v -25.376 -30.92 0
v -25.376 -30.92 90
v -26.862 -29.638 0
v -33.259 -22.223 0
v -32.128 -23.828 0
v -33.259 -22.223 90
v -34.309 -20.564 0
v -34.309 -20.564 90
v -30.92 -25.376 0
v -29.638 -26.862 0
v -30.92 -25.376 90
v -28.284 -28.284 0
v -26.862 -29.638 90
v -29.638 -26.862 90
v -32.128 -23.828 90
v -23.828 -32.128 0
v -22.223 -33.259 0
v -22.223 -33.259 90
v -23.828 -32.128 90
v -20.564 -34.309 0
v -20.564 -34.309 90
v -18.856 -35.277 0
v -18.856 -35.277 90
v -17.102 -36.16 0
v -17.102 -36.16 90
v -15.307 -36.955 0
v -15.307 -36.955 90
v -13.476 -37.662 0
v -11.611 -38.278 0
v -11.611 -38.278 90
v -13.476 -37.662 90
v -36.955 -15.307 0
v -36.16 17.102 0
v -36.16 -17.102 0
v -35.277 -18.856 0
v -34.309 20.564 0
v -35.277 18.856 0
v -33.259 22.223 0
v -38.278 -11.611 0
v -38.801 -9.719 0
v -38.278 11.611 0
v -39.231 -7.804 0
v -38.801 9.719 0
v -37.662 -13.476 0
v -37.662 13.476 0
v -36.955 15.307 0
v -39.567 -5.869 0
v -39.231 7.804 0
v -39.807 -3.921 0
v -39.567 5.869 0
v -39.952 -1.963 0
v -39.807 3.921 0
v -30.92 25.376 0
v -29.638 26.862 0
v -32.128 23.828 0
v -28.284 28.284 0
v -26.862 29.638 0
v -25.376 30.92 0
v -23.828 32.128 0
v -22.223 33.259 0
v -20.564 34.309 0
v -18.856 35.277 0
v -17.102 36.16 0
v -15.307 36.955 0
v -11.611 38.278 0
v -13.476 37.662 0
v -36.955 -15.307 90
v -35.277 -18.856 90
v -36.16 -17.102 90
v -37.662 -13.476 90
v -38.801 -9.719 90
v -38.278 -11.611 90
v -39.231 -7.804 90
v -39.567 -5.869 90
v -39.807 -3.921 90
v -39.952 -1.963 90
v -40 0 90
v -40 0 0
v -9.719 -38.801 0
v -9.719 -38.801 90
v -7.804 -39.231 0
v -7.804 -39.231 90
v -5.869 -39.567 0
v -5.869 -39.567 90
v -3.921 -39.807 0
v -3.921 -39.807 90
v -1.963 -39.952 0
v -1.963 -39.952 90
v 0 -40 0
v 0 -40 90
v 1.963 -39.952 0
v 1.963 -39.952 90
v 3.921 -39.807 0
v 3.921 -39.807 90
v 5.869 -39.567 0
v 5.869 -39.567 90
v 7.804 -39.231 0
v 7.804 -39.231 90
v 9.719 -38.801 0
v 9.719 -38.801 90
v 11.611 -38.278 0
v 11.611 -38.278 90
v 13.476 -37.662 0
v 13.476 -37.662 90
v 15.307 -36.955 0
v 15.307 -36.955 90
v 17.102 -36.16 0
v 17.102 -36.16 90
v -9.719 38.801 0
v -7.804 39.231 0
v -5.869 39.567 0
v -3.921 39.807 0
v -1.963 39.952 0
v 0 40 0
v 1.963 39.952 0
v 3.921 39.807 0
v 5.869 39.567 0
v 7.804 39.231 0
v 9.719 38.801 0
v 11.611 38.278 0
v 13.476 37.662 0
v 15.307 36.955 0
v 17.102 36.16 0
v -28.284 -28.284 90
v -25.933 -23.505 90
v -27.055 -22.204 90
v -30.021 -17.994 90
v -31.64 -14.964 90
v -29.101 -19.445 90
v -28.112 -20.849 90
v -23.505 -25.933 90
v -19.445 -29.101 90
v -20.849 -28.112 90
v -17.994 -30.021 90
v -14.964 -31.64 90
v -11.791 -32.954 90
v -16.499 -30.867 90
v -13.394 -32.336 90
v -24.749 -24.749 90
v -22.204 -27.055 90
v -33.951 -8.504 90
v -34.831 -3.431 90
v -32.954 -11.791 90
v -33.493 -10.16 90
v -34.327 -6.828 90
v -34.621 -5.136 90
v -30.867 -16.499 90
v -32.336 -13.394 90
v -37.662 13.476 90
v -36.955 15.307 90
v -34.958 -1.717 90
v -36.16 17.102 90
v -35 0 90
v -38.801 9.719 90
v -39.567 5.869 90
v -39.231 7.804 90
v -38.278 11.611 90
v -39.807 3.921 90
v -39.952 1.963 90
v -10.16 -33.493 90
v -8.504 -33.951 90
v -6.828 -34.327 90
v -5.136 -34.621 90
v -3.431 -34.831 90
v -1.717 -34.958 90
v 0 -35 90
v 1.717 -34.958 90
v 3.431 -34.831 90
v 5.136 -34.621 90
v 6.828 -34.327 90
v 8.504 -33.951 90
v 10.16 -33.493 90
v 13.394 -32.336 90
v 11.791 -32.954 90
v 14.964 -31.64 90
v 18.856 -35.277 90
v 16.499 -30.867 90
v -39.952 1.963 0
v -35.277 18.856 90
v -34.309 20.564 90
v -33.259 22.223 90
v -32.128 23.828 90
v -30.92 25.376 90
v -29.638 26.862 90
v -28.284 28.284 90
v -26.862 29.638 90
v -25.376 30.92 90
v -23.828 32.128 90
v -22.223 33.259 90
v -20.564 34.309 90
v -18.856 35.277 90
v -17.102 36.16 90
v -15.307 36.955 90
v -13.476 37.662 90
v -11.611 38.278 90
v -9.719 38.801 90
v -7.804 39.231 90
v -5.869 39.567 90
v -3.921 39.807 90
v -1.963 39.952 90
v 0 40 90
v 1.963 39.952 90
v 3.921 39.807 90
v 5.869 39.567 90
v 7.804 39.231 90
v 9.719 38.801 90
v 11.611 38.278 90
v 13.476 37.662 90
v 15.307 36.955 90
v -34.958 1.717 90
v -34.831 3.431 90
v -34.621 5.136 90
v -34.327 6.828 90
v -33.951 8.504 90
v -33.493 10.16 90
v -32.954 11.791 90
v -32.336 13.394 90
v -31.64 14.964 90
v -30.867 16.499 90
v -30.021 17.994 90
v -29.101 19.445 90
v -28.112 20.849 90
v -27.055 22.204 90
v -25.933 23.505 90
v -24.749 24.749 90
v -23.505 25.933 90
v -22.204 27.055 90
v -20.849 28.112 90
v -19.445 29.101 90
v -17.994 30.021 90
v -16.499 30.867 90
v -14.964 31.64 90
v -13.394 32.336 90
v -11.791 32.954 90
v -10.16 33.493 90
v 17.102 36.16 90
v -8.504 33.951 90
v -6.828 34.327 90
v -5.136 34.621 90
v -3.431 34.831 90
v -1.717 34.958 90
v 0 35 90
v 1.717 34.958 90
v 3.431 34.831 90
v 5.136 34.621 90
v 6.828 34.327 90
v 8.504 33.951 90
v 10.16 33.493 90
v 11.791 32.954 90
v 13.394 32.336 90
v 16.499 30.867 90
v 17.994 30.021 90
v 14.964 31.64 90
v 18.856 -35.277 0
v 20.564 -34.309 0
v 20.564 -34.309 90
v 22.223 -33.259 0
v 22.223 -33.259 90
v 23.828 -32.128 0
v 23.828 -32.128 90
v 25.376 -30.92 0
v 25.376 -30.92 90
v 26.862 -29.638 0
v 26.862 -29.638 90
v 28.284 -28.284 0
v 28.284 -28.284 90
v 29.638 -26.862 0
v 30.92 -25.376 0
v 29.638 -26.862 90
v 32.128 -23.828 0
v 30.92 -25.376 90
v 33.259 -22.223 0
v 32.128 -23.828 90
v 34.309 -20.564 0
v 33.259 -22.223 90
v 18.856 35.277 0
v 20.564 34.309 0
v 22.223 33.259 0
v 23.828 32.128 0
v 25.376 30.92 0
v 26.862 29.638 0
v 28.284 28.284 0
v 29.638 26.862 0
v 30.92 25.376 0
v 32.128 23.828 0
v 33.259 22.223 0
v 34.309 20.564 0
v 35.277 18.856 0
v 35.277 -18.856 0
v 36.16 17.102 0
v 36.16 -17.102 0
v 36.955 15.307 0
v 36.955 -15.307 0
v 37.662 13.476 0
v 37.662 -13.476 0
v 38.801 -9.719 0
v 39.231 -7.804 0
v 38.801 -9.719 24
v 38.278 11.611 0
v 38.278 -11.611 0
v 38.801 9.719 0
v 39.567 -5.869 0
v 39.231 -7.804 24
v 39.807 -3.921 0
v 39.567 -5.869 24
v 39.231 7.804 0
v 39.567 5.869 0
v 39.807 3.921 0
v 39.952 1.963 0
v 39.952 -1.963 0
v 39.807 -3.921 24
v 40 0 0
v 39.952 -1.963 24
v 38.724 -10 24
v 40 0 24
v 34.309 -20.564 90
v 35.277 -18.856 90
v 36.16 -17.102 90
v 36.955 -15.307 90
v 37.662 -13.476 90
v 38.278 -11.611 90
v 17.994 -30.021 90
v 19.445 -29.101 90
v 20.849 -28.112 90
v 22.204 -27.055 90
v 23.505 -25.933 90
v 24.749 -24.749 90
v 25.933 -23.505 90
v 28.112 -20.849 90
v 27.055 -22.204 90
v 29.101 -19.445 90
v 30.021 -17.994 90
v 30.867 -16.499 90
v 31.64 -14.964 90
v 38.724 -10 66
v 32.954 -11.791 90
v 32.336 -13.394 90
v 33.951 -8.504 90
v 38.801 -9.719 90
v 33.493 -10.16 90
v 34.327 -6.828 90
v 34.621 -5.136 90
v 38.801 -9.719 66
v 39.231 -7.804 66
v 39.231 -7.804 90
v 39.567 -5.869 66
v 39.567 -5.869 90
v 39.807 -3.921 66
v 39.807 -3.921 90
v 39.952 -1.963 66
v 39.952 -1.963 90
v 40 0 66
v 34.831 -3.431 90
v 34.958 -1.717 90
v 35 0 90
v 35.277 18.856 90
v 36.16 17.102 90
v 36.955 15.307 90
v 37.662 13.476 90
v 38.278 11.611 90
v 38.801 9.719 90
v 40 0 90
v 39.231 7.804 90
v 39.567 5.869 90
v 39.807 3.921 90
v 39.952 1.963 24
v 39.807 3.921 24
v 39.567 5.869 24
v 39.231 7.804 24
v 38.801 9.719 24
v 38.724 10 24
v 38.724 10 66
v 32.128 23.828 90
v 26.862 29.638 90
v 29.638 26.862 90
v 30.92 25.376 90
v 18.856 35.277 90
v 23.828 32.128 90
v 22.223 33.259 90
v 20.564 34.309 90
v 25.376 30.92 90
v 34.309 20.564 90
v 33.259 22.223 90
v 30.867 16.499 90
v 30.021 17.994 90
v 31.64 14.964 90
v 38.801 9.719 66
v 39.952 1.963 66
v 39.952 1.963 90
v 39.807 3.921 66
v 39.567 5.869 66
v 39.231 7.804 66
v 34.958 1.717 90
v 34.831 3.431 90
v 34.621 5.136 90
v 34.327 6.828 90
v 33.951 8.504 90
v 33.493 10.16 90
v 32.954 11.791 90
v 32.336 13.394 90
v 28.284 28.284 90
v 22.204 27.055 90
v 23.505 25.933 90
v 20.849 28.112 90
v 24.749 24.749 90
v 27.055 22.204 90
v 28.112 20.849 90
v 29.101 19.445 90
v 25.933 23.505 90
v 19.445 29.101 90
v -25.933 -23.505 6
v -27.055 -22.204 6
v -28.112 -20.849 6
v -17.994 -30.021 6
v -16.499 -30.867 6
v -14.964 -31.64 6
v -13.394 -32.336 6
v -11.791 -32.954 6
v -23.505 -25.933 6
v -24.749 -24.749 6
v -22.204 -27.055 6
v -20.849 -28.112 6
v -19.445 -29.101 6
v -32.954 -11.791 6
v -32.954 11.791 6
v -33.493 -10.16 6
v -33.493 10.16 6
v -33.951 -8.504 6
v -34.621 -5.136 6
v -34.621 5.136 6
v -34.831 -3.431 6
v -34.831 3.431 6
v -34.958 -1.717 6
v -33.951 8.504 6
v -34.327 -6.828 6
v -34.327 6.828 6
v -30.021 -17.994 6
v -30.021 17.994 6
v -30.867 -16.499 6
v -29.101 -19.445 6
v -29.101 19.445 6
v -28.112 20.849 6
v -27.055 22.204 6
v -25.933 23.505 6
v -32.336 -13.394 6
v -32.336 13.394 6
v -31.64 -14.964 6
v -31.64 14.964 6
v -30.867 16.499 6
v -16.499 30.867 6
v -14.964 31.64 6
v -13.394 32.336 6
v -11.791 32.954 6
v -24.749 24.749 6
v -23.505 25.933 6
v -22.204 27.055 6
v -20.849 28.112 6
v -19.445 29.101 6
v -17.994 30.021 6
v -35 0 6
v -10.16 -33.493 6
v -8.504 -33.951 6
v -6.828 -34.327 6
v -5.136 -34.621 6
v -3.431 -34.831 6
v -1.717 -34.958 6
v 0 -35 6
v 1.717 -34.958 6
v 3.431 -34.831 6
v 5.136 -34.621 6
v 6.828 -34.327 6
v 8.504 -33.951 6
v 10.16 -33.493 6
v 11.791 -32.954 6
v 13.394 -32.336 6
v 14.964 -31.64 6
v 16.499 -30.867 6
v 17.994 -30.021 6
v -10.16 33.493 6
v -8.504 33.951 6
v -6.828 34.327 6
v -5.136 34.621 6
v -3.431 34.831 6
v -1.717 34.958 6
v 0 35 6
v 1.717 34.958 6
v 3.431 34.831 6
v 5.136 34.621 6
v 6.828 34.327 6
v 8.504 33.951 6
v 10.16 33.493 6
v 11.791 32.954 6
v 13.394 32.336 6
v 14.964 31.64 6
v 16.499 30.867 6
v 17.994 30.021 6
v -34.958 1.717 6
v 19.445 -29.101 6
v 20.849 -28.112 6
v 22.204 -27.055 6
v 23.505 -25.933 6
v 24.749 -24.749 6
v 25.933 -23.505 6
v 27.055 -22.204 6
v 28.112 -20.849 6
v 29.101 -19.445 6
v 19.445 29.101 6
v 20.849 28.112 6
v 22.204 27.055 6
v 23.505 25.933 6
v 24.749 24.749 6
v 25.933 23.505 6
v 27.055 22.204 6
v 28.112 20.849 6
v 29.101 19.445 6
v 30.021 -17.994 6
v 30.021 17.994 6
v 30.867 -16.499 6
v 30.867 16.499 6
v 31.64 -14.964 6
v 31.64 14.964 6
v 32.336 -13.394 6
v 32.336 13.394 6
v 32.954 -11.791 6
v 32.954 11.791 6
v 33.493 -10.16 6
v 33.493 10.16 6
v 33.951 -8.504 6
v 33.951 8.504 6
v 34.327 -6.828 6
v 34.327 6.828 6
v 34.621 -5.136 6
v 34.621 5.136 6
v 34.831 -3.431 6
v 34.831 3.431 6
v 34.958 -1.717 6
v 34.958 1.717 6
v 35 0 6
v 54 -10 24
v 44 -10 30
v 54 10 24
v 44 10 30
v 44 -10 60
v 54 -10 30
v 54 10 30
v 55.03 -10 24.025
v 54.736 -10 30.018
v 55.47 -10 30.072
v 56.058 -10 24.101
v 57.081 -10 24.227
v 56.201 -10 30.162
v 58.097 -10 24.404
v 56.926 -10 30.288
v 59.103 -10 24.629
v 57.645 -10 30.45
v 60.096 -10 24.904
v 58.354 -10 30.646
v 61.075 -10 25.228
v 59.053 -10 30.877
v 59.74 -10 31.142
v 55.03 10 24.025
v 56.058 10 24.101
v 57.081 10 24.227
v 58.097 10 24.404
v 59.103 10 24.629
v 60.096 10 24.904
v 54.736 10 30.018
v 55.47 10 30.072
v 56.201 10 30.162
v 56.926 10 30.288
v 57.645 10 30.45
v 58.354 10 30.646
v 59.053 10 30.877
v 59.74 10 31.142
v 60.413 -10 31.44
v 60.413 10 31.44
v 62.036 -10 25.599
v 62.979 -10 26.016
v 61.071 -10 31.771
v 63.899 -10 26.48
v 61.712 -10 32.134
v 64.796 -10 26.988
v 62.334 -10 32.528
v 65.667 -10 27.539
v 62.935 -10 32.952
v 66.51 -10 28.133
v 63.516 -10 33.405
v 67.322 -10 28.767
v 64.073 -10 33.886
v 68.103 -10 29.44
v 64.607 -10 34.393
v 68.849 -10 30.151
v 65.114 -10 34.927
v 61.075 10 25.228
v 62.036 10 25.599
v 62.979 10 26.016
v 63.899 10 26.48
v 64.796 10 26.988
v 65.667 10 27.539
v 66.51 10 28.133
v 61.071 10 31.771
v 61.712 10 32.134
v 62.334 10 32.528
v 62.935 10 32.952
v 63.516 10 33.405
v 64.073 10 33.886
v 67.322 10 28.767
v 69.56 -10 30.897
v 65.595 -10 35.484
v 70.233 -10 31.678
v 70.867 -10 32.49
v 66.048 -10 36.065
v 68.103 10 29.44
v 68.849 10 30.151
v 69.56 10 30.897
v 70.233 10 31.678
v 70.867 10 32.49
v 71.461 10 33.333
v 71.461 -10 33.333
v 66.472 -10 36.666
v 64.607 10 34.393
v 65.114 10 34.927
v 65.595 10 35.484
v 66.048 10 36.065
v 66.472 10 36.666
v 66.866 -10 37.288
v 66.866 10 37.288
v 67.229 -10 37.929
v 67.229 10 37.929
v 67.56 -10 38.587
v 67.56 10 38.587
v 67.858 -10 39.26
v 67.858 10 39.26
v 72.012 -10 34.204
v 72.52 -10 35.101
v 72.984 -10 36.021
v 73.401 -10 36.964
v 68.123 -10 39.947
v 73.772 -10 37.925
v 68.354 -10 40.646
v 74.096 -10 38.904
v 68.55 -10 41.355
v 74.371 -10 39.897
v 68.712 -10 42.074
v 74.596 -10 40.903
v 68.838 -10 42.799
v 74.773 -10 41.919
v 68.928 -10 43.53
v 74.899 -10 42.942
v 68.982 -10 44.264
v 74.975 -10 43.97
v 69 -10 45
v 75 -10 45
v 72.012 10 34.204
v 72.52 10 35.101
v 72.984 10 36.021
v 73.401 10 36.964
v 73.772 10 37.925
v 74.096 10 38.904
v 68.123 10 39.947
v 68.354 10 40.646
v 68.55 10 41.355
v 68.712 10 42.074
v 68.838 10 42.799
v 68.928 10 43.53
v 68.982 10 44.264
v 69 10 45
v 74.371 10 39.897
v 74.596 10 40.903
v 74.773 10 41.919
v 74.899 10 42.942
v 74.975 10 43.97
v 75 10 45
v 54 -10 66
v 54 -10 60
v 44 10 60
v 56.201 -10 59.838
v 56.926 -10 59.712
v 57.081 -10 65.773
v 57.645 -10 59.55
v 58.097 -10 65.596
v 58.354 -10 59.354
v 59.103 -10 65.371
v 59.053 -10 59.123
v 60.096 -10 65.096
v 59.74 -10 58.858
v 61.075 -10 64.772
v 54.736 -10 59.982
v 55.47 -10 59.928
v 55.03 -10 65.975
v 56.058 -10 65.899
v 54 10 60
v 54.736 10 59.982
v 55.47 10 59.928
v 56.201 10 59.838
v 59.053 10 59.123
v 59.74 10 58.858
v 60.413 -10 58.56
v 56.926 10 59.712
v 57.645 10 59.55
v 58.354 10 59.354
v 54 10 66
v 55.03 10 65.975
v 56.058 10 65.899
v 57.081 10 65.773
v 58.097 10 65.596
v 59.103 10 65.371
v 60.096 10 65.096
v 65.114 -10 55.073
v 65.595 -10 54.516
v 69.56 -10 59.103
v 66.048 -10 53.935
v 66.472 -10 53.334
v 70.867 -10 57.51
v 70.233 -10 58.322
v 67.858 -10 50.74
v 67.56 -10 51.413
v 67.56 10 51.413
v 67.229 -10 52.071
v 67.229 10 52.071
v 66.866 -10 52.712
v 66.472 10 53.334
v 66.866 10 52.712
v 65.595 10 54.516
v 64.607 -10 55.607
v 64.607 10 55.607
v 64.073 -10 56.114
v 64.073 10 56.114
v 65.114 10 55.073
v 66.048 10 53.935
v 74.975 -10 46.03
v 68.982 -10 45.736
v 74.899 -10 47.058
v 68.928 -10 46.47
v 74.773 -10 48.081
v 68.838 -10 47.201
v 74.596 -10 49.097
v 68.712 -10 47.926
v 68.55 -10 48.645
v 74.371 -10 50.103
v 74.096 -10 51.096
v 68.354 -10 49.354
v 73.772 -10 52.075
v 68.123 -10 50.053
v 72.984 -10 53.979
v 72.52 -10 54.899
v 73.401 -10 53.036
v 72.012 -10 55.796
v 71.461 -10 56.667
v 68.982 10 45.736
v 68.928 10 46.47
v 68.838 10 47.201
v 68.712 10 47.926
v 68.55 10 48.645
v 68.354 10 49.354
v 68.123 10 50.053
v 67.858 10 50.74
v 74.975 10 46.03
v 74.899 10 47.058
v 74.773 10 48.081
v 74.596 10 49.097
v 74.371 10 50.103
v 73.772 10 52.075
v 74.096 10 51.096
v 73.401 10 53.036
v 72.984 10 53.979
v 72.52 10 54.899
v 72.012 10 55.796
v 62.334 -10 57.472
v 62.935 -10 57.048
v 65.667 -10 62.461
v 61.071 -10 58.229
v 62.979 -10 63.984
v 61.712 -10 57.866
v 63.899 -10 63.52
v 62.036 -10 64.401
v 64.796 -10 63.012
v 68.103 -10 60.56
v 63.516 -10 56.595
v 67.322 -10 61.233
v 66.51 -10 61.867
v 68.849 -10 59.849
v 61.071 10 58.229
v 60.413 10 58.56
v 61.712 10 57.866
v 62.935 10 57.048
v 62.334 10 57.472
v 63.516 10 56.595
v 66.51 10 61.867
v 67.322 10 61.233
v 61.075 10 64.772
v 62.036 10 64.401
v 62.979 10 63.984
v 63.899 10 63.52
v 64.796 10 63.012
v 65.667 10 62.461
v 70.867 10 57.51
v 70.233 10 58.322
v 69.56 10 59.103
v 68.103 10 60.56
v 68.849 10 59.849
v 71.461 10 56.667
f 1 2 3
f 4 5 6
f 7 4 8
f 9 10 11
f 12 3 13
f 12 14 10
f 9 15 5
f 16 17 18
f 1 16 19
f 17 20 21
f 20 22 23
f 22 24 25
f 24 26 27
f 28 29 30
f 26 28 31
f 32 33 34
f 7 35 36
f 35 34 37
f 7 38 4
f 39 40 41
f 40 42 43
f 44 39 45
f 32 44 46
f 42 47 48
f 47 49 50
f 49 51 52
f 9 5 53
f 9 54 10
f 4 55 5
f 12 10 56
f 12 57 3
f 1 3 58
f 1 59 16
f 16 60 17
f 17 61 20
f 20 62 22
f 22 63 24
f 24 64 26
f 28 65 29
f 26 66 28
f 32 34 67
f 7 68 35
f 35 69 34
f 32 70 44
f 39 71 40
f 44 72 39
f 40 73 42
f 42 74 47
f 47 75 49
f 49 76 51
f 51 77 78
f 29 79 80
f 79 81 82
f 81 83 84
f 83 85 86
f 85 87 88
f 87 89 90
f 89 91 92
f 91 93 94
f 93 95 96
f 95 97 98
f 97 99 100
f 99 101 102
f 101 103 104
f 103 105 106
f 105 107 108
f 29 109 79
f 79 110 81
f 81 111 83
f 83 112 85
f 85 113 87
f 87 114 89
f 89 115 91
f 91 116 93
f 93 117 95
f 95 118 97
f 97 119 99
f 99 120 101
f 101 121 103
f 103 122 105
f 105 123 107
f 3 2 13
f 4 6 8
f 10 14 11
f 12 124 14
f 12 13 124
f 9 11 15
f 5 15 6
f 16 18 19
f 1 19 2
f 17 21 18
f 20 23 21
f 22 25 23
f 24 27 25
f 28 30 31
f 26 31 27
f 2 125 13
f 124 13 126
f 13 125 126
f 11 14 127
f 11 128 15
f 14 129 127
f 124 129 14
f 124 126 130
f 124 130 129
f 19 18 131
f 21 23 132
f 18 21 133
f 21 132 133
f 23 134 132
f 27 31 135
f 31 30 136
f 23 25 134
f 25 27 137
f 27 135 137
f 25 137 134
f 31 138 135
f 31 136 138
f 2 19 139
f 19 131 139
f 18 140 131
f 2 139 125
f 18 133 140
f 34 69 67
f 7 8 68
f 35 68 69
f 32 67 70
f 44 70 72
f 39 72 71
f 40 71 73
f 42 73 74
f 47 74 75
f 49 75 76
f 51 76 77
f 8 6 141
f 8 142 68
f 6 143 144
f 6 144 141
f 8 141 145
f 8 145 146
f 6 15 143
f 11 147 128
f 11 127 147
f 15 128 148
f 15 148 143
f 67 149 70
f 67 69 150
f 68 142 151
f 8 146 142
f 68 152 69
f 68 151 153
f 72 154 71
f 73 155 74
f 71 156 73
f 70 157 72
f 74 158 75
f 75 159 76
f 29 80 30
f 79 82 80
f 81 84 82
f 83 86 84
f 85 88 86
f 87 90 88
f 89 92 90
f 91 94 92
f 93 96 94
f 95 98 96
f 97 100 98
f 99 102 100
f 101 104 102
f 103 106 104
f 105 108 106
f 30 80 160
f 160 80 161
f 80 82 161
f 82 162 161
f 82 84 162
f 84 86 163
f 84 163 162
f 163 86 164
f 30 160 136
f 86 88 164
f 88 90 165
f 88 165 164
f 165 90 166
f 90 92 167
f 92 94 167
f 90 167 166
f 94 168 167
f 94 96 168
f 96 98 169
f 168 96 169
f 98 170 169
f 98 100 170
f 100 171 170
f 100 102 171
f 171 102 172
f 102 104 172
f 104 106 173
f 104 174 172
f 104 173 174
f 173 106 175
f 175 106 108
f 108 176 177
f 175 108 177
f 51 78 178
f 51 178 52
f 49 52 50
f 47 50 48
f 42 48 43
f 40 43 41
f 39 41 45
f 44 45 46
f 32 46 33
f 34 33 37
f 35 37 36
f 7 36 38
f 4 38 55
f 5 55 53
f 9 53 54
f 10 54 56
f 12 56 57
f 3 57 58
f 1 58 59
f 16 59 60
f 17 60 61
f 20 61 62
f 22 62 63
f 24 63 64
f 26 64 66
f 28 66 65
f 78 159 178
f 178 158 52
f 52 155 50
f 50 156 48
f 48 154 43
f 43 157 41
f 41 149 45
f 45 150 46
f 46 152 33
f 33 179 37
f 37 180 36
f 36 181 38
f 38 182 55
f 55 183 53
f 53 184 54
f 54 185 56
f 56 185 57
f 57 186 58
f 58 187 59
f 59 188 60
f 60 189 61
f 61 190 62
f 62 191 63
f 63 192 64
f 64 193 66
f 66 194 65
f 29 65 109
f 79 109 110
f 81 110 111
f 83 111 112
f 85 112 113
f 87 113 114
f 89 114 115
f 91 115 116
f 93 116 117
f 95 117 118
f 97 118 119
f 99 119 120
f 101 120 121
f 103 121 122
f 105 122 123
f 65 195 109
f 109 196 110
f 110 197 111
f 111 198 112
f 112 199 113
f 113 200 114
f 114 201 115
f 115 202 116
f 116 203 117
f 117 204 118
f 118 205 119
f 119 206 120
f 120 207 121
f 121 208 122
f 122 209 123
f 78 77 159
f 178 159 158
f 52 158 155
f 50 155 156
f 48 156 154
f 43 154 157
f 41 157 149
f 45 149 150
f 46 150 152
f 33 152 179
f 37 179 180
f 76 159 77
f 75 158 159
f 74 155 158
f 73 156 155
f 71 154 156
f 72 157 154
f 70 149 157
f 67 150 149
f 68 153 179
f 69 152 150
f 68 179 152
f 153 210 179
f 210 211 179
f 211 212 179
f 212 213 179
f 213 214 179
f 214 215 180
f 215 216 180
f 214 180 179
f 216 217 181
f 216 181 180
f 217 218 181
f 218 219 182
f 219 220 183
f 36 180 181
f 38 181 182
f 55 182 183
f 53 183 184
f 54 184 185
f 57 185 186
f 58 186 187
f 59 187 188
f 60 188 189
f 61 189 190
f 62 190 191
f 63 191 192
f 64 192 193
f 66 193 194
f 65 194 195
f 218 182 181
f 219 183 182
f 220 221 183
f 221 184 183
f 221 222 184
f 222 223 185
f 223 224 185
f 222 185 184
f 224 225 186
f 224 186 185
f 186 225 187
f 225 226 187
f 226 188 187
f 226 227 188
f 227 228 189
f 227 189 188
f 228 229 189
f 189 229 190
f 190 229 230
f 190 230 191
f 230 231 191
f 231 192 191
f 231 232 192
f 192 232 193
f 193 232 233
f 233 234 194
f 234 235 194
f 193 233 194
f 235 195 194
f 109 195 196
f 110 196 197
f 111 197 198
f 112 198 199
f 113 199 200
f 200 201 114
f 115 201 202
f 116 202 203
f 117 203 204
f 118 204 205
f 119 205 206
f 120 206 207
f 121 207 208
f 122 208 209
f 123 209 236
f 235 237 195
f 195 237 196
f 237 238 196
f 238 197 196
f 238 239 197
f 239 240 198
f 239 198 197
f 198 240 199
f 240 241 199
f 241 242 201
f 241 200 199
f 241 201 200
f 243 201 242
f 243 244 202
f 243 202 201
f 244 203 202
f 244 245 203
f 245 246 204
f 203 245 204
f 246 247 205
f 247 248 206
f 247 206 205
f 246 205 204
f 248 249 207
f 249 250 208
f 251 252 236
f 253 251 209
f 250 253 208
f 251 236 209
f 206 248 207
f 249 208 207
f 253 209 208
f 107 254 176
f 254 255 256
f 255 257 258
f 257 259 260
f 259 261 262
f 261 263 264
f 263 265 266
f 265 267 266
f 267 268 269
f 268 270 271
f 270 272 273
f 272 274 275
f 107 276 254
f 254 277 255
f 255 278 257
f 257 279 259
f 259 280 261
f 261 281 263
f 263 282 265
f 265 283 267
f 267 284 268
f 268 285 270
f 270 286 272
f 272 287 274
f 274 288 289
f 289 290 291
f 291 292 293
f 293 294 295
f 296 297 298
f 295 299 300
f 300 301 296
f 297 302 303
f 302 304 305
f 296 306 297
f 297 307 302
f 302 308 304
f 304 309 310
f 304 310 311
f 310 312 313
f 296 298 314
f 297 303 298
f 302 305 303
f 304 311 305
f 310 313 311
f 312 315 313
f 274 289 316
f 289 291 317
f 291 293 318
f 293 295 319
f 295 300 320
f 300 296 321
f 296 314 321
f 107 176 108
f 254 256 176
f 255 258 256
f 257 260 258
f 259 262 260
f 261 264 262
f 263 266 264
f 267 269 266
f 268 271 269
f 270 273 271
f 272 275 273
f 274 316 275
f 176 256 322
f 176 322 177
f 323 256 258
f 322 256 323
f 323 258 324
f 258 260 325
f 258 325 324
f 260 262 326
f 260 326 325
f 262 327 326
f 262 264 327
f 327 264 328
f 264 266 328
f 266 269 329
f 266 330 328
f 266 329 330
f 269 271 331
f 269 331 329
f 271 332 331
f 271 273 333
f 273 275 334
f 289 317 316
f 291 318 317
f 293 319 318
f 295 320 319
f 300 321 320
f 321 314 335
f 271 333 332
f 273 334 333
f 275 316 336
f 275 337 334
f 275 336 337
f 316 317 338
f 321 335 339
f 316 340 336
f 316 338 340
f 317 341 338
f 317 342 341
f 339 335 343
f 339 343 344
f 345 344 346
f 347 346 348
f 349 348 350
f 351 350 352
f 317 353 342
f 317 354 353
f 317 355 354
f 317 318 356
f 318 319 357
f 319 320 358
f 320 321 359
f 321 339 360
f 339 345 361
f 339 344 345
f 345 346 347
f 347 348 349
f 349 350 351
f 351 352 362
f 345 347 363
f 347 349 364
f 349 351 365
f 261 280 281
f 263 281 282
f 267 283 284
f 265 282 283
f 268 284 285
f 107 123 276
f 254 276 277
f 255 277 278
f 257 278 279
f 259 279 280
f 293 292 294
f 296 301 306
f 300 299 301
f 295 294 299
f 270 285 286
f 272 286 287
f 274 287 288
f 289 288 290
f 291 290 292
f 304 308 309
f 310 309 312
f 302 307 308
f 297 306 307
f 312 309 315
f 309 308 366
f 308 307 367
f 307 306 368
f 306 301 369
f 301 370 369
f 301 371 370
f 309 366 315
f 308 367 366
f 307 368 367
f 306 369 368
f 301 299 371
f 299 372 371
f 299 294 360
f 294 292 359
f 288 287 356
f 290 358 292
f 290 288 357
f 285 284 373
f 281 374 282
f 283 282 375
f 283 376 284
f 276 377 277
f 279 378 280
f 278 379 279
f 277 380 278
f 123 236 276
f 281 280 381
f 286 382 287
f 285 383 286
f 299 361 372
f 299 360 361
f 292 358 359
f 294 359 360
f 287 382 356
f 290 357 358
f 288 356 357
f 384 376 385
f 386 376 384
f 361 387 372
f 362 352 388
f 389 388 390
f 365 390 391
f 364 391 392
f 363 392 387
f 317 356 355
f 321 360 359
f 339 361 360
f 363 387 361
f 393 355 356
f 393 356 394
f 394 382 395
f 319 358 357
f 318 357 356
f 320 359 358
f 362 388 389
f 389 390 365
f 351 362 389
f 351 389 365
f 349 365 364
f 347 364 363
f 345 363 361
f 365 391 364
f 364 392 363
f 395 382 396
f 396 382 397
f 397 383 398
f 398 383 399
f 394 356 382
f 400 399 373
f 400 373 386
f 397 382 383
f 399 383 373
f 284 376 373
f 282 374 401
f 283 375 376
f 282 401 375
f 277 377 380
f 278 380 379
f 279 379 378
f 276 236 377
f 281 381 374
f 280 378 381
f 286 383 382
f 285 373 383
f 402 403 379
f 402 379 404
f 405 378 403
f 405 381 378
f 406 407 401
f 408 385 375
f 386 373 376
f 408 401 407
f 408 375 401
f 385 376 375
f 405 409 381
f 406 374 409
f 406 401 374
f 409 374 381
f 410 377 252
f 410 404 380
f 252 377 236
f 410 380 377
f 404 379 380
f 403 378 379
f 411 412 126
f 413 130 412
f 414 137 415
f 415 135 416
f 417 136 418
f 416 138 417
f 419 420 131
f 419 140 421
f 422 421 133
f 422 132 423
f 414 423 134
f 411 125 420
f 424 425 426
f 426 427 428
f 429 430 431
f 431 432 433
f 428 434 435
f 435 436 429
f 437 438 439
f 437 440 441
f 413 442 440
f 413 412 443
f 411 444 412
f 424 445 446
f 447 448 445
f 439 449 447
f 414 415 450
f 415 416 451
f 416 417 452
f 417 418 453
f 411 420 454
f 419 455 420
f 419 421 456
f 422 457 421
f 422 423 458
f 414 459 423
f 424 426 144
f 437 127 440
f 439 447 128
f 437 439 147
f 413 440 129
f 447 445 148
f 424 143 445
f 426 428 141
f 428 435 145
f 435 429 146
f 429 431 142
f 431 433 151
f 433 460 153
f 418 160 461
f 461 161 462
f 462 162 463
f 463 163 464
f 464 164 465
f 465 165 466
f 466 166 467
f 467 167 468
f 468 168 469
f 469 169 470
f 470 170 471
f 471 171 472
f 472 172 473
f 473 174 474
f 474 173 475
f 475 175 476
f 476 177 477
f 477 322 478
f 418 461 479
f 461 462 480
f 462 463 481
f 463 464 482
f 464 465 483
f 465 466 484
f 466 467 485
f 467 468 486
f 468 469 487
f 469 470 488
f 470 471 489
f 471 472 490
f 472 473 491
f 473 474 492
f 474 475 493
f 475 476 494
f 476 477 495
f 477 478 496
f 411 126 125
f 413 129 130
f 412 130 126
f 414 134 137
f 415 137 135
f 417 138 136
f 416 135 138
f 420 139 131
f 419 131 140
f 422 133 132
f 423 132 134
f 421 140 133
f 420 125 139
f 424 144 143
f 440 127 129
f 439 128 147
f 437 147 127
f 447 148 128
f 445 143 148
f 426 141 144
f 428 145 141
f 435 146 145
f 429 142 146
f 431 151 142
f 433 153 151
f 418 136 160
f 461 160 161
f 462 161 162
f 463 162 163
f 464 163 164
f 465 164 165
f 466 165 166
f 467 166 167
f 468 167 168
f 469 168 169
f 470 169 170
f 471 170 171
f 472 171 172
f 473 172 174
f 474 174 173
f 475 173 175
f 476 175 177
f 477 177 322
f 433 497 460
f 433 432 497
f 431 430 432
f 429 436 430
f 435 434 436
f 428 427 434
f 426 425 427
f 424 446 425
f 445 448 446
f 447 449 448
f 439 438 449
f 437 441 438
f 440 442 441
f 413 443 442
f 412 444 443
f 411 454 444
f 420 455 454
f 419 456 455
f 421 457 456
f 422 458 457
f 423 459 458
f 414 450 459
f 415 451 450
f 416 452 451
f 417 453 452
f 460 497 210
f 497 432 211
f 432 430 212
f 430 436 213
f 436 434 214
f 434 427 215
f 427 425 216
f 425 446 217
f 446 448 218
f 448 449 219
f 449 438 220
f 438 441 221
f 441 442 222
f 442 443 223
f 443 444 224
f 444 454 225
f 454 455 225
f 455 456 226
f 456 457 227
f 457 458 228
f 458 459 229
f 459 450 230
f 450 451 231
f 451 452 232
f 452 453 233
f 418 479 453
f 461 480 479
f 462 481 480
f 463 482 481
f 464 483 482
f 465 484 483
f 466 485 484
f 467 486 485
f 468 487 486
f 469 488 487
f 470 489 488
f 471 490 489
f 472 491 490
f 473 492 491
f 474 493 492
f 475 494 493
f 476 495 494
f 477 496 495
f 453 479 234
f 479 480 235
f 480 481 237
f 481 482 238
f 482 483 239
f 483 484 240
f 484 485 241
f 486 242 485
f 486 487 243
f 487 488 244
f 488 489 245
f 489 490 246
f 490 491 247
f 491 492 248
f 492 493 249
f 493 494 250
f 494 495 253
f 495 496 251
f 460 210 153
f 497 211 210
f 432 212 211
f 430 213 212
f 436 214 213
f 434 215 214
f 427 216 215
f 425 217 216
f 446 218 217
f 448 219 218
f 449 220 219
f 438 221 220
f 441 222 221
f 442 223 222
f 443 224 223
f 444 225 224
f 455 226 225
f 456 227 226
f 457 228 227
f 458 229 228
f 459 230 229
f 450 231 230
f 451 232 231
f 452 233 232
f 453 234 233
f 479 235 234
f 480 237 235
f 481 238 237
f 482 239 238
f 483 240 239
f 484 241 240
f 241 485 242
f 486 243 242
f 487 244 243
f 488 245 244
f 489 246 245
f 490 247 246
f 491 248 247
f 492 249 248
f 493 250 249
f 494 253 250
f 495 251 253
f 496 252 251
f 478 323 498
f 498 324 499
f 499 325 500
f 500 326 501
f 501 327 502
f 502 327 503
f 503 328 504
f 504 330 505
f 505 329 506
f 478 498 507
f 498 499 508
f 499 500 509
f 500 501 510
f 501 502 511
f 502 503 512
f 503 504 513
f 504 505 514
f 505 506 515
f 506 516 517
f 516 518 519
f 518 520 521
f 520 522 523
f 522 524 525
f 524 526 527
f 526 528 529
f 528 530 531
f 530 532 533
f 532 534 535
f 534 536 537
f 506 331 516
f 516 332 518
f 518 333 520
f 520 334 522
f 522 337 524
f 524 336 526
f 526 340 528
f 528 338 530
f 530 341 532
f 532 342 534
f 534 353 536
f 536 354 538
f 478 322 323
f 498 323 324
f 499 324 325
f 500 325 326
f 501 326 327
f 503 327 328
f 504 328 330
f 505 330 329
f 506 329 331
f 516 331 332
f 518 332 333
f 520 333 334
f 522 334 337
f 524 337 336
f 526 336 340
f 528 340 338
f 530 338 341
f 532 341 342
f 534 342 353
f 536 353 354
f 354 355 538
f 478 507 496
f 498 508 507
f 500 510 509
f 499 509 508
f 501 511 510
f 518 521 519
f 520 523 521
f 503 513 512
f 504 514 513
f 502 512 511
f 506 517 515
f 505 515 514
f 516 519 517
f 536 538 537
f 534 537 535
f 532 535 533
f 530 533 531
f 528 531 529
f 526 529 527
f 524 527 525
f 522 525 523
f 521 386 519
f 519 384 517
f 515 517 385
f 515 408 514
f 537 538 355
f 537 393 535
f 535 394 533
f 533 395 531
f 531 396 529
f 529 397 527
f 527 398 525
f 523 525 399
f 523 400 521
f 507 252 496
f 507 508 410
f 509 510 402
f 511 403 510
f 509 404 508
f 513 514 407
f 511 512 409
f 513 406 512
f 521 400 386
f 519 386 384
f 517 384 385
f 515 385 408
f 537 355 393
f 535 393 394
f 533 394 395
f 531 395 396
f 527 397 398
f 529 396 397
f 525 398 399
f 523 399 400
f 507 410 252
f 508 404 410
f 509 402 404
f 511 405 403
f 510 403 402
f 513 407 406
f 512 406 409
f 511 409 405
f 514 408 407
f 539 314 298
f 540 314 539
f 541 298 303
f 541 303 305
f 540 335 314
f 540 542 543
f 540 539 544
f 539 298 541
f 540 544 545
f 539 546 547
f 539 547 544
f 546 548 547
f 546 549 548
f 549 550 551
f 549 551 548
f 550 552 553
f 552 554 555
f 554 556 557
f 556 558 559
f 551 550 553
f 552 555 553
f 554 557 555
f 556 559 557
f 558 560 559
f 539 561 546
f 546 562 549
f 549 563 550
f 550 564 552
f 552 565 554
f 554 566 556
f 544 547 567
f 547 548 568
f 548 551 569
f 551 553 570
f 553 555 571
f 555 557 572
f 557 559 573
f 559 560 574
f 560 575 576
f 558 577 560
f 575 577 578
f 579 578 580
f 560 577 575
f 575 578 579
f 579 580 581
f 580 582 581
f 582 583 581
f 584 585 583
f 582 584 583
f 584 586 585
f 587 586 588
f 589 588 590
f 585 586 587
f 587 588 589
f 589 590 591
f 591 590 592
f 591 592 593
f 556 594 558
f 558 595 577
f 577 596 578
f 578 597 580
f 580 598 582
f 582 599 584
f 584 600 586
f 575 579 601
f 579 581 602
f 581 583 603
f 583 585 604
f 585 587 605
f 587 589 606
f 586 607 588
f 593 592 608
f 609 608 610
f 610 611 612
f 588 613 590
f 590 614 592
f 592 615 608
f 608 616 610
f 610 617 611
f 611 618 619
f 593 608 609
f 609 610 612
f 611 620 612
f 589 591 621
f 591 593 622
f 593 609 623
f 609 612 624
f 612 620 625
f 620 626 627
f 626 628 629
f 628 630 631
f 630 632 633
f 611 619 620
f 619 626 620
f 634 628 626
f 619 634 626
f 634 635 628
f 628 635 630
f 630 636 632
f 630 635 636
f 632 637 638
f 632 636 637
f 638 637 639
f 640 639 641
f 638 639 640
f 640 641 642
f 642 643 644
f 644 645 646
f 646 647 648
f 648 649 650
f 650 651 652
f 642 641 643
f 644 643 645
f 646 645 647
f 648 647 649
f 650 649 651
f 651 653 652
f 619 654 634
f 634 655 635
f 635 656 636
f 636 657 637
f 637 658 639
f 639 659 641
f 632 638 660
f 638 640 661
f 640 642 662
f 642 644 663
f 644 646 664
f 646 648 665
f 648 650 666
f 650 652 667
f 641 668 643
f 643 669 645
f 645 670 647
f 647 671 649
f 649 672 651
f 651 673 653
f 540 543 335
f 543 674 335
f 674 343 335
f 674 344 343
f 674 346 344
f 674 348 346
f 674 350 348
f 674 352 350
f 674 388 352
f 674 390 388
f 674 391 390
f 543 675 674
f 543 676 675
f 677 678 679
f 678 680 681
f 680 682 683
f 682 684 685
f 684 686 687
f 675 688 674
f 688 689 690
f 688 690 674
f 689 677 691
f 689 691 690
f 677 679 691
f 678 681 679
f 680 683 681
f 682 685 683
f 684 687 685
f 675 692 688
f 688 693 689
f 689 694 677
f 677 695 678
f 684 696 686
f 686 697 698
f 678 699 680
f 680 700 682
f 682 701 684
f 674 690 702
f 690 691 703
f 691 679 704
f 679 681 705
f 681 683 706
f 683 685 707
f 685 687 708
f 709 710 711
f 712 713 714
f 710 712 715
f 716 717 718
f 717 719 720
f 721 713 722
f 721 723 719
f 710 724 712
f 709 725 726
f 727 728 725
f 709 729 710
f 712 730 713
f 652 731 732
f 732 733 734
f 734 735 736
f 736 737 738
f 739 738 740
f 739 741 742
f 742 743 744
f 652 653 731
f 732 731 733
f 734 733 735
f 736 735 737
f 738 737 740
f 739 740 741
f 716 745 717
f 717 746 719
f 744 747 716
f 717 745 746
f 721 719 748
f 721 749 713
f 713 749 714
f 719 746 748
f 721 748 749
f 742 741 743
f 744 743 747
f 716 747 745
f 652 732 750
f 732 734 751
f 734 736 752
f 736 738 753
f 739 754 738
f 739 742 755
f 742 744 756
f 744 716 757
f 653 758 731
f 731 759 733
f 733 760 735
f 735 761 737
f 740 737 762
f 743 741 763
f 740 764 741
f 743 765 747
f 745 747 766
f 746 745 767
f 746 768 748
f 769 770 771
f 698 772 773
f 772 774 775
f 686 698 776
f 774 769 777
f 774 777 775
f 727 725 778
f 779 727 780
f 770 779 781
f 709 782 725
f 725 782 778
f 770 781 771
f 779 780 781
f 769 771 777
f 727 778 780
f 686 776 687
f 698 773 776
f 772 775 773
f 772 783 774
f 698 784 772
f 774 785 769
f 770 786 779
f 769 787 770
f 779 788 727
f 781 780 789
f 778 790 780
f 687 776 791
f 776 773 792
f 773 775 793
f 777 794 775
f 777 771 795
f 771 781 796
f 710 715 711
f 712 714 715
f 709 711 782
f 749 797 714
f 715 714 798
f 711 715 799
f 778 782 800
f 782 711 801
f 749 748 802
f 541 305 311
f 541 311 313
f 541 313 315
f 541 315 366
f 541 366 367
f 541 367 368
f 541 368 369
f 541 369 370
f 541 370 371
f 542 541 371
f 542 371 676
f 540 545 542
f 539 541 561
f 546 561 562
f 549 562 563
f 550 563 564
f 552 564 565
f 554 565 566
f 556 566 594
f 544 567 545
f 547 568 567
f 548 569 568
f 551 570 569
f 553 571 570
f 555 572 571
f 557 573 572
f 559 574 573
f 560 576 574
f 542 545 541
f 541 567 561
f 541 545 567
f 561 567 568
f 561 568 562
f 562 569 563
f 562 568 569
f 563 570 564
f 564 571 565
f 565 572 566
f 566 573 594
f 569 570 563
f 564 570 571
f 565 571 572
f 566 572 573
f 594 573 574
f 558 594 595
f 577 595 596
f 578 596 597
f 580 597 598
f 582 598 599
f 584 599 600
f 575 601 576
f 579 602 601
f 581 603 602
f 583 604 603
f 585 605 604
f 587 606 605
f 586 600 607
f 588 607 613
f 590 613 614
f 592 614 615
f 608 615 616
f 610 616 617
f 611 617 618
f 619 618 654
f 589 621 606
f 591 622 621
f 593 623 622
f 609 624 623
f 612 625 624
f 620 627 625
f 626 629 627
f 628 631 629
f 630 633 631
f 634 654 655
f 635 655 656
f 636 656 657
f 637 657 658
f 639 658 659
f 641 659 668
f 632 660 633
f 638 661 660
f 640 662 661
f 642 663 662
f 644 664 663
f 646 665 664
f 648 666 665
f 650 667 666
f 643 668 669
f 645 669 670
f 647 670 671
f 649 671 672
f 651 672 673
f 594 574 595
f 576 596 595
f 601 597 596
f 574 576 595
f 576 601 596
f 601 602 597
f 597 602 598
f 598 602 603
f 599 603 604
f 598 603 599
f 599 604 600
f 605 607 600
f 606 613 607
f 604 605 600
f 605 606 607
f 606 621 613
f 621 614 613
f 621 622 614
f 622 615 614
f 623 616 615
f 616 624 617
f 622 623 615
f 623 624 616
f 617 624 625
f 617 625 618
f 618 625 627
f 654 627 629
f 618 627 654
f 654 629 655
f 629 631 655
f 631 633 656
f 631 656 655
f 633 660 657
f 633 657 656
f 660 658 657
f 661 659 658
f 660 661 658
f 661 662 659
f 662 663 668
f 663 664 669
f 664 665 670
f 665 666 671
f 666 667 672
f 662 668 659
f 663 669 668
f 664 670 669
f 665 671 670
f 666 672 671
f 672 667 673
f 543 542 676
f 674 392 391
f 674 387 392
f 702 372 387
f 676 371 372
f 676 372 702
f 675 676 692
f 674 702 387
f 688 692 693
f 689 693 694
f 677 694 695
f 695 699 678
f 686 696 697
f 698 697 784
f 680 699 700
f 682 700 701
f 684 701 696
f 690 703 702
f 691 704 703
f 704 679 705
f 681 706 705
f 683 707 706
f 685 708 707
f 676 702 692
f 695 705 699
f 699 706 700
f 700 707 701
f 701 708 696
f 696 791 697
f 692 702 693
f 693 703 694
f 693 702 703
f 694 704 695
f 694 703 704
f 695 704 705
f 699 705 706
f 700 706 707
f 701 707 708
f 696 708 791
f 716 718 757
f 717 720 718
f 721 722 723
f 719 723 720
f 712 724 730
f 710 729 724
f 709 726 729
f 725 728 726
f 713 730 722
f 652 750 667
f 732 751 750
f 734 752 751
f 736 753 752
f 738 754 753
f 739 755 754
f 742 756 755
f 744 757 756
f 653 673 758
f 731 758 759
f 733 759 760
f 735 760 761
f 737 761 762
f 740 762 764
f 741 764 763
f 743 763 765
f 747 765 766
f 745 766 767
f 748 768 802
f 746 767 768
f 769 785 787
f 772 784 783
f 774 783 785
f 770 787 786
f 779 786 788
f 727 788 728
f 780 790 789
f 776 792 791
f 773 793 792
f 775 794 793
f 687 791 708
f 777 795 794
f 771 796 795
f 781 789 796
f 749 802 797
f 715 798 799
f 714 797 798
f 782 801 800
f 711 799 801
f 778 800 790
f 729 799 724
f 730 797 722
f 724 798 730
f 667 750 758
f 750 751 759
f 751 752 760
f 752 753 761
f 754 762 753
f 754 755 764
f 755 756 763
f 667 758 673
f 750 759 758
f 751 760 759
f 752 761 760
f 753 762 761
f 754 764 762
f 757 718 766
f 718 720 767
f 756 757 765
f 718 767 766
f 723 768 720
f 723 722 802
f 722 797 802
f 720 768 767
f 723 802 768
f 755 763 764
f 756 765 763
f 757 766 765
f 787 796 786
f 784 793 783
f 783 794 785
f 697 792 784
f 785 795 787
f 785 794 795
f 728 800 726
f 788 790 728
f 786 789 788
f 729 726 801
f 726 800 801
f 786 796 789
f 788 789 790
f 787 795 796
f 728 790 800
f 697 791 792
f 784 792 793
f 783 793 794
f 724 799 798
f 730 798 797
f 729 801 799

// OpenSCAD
$fn = 128;

mug_outer_radius = 40;
mug_inner_radius = 35;
mug_height = 90;
mug_bottom_thickness = 6;

handle_inner_height = 30;
handle_inner_width = 25;
handle_wall_thickness = 6;
handle_depth = 20;
handle_overlap = 2;

module d_outline(straight_len, radius) {
    union() {
        square([straight_len, 2 * radius], center = false);
        intersection() {
            translate([straight_len, radius])
                circle(r = radius);
            translate([straight_len, 0])
                square([radius, 2 * radius], center = false);
        }
    }
}

module mug_body() {
    difference() {
        cylinder(h = mug_height, r = mug_outer_radius);
        translate([0, 0, mug_bottom_thickness])
            cylinder(h = mug_height - mug_bottom_thickness, r = mug_inner_radius);
    }
}

module handle() {
    inner_radius = handle_inner_height / 2;
    outer_radius = inner_radius + handle_wall_thickness;
    straight_inner = max(0, handle_inner_width - inner_radius);
    straight_outer = straight_inner + handle_wall_thickness;

    translate([mug_outer_radius - handle_overlap, 0, mug_height / 2])
        rotate([90, 0, 0])
            linear_extrude(height = handle_depth, center = true, convexity = 10)
                translate([0, -outer_radius])
                    difference() {
                        d_outline(straight_outer, outer_radius);
                        translate([handle_wall_thickness, handle_wall_thickness])
                            d_outline(straight_inner, inner_radius);
                    };
}

union() {
    mug_body();
    handle();
}
